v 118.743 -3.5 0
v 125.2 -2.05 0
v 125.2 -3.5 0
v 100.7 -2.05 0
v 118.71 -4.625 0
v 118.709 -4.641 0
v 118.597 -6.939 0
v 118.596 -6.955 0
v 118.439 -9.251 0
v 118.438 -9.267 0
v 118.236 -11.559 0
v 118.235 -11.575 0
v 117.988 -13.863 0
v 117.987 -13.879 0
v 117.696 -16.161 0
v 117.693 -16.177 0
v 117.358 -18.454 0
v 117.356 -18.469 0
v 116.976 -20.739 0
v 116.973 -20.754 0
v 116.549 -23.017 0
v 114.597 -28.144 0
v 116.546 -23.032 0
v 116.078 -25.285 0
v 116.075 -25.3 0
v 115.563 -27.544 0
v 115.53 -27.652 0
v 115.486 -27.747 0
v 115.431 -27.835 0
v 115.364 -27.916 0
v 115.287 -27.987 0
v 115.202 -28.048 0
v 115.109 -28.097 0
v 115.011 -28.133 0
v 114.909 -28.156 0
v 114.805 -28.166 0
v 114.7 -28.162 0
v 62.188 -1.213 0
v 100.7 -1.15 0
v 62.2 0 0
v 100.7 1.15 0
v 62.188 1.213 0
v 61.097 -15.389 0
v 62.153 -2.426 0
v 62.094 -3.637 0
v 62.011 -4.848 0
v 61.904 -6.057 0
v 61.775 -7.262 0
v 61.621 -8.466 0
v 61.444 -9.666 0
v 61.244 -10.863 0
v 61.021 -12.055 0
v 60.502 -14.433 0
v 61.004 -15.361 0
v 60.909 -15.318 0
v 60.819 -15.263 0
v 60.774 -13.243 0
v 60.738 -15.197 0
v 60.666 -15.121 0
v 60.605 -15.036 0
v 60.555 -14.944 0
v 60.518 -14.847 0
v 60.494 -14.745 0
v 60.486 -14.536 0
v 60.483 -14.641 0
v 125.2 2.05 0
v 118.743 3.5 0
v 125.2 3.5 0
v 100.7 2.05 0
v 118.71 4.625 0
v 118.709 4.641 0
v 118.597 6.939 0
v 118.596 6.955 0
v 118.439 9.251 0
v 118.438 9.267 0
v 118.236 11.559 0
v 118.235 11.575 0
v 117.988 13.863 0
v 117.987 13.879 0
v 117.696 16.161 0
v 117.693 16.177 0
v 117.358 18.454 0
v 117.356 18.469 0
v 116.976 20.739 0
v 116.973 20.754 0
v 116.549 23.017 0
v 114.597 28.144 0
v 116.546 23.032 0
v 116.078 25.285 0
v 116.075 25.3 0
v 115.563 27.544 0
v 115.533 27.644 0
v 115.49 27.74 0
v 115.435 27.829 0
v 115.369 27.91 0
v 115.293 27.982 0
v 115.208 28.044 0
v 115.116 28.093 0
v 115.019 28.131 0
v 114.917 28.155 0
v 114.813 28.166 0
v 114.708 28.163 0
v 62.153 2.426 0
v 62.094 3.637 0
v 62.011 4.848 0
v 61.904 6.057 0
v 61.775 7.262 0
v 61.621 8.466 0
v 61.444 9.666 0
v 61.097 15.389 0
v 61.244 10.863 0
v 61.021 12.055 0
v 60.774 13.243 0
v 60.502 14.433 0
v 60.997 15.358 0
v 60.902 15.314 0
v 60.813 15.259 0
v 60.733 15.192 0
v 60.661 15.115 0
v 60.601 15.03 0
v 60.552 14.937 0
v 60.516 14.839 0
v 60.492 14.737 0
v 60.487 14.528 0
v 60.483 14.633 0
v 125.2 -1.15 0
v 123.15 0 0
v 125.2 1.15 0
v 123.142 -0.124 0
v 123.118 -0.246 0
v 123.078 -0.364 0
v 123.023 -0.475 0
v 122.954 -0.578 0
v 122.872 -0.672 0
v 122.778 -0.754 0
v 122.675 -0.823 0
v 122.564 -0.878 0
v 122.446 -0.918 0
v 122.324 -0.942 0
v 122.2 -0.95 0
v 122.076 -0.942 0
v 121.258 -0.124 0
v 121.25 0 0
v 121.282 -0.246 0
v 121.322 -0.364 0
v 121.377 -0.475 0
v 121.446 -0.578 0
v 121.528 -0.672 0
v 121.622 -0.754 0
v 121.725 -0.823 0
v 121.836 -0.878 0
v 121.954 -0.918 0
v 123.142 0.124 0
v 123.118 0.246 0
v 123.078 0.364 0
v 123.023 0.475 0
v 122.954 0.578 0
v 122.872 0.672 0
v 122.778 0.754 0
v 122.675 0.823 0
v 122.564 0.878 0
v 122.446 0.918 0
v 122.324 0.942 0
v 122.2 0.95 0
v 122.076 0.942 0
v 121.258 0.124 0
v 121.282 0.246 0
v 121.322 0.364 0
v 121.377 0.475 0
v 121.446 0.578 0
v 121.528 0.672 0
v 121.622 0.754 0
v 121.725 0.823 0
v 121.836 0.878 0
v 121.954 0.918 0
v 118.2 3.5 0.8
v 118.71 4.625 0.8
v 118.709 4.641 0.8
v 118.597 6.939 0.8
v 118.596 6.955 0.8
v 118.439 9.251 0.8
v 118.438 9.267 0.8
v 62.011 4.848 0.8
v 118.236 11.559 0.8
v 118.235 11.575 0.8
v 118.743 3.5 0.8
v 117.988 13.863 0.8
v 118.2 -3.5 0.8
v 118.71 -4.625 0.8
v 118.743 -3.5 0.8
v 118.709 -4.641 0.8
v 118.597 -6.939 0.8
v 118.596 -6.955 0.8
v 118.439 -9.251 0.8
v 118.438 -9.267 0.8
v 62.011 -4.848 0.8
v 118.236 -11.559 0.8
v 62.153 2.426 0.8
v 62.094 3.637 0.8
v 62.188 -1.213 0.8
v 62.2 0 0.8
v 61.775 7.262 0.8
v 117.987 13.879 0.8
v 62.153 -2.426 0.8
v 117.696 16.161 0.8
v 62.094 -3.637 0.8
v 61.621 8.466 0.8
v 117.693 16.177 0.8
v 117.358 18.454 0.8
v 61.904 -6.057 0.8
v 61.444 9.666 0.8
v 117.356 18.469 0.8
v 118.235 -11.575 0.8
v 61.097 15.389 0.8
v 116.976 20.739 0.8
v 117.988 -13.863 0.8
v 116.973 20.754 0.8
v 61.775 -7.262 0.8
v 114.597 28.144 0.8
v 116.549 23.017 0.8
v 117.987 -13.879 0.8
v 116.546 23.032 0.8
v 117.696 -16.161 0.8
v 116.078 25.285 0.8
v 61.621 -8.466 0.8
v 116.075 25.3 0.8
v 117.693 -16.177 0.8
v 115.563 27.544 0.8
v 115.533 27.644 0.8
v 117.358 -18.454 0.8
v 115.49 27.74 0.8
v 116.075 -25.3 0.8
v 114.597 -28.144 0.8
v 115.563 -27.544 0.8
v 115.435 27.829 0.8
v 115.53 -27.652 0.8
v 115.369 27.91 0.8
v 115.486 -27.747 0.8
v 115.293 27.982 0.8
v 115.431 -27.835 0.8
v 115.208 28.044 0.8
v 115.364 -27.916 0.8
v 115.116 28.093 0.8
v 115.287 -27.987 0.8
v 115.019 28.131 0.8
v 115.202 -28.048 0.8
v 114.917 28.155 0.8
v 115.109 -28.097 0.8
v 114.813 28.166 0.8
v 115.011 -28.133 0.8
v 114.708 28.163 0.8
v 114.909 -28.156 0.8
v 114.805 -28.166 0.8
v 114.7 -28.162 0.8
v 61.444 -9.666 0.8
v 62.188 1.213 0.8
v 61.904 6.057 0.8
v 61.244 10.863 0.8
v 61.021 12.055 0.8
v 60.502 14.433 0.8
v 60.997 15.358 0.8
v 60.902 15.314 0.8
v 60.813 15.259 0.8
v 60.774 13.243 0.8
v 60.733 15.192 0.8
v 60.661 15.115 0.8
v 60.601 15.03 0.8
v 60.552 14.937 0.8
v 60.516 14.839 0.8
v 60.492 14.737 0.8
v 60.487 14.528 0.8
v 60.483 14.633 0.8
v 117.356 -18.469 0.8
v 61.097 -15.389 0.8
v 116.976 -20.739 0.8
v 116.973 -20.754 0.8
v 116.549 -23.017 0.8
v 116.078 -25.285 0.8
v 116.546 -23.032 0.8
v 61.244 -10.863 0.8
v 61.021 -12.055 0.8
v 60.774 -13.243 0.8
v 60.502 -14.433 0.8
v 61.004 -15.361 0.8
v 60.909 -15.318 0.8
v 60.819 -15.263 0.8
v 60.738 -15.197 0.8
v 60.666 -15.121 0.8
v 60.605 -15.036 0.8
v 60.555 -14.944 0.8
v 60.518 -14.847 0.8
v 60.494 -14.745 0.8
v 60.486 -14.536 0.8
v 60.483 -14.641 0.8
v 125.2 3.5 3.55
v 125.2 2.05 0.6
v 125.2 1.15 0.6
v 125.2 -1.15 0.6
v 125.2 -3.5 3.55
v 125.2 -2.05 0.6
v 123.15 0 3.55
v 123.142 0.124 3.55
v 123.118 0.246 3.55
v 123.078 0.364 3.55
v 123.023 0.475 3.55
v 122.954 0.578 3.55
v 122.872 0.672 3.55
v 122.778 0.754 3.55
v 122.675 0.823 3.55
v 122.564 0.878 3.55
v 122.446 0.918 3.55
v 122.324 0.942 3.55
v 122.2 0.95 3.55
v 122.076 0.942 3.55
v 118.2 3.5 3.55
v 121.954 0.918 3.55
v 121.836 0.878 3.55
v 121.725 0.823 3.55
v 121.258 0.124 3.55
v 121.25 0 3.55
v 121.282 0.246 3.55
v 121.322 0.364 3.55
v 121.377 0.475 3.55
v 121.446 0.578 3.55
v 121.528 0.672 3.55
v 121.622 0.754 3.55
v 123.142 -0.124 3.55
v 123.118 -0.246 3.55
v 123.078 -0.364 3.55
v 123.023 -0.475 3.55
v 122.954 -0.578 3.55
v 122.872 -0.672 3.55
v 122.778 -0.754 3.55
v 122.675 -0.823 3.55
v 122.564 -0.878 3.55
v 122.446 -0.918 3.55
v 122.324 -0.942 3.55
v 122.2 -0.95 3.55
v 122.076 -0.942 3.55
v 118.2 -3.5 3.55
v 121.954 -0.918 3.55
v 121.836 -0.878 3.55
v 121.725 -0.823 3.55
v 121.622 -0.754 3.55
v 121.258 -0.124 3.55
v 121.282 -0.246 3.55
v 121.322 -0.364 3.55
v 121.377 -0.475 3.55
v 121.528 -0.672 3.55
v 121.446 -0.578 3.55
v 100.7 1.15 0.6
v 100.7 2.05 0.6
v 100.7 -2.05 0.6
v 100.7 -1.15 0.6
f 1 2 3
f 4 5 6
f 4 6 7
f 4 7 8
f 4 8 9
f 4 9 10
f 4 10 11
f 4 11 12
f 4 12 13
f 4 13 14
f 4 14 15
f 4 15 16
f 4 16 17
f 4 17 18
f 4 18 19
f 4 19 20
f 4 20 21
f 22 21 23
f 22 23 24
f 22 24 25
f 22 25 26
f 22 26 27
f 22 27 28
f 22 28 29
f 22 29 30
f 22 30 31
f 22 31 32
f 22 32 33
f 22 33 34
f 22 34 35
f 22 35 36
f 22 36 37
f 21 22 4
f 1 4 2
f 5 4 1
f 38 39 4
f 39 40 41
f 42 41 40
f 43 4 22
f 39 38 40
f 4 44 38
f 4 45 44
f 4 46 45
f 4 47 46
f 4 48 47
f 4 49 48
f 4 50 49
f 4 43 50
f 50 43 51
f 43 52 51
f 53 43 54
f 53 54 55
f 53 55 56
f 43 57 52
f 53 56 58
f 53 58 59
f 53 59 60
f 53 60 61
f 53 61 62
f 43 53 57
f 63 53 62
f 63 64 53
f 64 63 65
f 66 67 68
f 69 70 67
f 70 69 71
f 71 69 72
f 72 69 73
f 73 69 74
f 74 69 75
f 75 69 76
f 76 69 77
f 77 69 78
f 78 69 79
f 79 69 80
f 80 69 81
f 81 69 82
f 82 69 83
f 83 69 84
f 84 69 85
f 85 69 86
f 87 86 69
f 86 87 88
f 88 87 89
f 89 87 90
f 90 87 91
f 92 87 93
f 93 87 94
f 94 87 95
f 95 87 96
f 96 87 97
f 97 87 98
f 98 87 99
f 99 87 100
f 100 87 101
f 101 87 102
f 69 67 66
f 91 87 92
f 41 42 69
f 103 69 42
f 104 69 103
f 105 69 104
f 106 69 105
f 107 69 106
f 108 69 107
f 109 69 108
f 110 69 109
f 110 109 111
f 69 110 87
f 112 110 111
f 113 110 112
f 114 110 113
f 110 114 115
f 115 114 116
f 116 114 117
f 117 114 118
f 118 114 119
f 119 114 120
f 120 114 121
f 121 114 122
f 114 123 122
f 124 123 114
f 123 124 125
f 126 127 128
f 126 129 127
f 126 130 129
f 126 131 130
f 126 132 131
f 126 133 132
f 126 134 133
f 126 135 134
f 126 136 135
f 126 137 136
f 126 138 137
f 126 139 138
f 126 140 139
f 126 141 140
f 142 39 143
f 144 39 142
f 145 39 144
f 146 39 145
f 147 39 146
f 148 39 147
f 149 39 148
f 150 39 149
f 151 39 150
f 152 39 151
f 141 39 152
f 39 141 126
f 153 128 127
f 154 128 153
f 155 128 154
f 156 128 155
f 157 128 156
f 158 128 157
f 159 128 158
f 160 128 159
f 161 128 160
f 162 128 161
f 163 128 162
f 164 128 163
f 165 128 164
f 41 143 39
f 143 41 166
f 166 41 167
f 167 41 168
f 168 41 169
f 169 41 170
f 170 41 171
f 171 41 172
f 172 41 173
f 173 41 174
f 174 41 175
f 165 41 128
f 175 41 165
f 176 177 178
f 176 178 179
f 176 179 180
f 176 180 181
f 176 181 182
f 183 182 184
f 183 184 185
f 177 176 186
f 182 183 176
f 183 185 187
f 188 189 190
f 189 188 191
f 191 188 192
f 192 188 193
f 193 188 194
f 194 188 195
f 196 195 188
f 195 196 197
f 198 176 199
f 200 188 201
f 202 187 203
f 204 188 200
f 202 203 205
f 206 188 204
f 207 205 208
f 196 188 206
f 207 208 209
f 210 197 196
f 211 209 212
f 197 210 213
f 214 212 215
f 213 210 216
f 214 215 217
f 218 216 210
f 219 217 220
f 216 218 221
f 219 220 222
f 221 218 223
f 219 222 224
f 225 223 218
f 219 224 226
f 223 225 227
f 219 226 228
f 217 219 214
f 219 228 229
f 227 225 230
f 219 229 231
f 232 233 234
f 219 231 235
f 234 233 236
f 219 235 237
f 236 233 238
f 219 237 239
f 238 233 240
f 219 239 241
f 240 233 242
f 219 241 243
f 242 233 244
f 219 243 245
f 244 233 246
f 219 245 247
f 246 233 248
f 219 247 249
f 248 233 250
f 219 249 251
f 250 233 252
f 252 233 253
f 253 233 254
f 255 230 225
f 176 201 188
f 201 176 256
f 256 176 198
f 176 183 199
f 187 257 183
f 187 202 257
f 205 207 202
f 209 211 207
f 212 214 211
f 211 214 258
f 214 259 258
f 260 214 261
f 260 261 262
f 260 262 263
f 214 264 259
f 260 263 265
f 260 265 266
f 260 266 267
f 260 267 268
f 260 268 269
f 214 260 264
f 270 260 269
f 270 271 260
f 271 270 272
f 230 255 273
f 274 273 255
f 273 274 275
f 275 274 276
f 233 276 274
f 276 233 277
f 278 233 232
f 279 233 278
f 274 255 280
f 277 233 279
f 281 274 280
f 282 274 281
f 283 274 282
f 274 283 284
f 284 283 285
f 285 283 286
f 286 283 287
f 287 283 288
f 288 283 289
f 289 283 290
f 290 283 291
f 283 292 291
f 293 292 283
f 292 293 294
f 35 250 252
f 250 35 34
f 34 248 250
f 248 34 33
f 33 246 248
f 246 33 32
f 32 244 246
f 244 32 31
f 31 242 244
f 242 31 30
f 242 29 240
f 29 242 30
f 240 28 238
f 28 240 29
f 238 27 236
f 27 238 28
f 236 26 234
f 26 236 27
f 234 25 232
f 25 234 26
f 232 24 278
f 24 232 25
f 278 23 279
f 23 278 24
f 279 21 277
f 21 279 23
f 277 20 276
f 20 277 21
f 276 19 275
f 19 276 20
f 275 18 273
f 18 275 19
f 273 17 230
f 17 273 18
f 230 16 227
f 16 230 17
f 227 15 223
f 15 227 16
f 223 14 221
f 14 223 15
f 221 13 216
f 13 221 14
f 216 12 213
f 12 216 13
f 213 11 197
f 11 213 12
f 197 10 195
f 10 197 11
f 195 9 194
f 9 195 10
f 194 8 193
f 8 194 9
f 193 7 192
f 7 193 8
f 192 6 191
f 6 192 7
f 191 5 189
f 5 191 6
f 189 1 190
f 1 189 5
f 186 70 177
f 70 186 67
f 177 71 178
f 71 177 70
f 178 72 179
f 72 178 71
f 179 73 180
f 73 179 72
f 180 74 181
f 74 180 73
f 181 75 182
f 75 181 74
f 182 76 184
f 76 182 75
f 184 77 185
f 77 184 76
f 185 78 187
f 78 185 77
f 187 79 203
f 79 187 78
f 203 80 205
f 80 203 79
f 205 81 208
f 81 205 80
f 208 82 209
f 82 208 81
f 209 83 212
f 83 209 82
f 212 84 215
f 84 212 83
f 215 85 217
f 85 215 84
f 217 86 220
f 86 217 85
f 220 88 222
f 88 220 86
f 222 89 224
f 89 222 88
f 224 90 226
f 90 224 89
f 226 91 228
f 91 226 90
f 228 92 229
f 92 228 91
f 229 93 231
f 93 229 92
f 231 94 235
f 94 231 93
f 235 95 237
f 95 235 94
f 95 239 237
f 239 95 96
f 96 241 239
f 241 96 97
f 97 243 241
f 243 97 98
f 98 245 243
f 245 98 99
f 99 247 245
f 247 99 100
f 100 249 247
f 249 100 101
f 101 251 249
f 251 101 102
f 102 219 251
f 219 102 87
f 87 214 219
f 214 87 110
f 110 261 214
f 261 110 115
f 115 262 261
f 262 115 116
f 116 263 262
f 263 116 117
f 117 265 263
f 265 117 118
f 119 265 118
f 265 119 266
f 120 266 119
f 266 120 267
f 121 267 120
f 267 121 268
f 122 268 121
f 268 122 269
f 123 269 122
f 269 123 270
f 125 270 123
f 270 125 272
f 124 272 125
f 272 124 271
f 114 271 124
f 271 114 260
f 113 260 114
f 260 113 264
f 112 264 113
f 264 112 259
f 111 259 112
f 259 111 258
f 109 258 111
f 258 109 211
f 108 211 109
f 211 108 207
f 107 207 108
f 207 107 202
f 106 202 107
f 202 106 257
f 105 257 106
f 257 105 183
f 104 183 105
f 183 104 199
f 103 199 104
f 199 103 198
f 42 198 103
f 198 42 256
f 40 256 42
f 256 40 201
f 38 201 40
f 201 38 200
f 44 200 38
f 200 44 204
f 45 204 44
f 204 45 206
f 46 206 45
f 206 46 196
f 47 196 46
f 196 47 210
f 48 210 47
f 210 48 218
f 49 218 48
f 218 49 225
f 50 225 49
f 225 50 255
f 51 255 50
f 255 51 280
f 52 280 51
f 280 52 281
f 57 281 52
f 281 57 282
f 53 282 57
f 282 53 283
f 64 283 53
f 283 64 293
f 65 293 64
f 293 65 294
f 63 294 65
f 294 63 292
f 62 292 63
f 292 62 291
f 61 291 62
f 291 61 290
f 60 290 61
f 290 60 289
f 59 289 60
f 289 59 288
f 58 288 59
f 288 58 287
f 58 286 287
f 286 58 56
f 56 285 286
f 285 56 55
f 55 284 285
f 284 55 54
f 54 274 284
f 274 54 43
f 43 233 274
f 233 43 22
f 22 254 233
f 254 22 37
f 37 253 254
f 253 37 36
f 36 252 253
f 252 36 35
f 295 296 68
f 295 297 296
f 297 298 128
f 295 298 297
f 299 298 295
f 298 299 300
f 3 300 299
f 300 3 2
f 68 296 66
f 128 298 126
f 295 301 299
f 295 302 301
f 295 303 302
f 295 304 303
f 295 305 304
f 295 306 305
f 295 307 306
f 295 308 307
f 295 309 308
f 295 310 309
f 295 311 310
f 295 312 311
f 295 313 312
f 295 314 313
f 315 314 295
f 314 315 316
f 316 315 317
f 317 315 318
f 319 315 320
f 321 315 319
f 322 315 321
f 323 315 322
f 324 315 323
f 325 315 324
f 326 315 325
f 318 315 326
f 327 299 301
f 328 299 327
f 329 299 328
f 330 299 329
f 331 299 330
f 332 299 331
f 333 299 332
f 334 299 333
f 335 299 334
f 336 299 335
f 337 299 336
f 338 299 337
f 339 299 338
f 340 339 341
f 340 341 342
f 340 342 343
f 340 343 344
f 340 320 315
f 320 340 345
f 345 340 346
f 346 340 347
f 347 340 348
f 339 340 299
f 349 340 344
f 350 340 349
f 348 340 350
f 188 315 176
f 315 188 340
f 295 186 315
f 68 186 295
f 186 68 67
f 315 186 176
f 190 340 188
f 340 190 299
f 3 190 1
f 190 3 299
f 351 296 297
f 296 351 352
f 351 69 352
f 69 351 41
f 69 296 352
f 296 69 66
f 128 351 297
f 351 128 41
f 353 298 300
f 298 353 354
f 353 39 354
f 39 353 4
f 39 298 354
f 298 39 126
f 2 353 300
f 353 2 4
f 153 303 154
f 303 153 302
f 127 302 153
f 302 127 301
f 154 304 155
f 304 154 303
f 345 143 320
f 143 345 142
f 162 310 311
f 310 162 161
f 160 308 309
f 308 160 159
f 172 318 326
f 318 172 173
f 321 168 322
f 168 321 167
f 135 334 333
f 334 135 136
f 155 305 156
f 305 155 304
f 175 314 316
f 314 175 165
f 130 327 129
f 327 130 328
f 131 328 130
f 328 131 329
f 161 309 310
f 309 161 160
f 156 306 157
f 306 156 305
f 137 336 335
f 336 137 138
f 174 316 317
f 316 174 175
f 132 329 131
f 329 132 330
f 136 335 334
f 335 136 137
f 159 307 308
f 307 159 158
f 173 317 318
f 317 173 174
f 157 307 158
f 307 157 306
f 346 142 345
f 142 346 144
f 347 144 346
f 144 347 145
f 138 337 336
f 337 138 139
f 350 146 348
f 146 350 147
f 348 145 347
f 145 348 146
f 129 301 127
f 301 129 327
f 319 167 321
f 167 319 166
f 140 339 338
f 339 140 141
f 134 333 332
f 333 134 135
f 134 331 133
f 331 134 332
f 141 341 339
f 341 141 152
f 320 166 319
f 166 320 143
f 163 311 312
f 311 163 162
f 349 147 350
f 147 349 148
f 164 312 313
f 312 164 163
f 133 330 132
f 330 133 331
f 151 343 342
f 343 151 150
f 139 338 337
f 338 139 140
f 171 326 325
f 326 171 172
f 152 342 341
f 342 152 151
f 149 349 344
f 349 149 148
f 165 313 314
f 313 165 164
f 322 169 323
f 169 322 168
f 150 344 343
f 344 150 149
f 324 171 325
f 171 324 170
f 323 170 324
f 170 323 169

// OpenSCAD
// Gen-DE — bobbin LID (top flange + locating tab). Print x12, flange face DOWN on the bed.
// CA-glue onto the hub top BEFORE winding. Tab = lap joint into the stator tab pocket; 1.75 mm filament
// pin through pin hole + stator ledge, trim flush. Lead slots carry both leads flush.
include <parameters.scad>;
$fn = 48;
module sector_2d(r_in, r_out, ang) {
    polygon([
        for (a = [-ang/2 : ang/24 : ang/2]) [r_in*cos(a), r_in*sin(a)],
        for (a = [ang/2 : -ang/24 : -ang/2]) [r_out*cos(a), r_out*sin(a)]
    ]);
}
module footprint_2d() { offset(r=wall) sector_2d(coil_id_r, coil_od_r, span_deg); }
module hub_2d()       { offset(delta=-coil_core_inset) sector_2d(coil_id_r, coil_od_r, span_deg); }

difference() {
    union() {
        linear_extrude(flange_t) footprint_2d();
        translate([coil_od_r + 0.2, -tab_w/2, 0]) cube([tab_len, tab_w, tab_h]);
    }
    translate([coil_mount_r, 0, -0.1]) cylinder(d=pin_d, h=tab_h + 1);
    for (y = [lead_y, -lead_y])
        translate([coil_od_r - coil_core_inset - 0.5, y - lead_slot_w/2, -0.1])
            cube([coil_core_inset + tab_len + 2, lead_slot_w, lead_groove_d + 0.1]);
}
